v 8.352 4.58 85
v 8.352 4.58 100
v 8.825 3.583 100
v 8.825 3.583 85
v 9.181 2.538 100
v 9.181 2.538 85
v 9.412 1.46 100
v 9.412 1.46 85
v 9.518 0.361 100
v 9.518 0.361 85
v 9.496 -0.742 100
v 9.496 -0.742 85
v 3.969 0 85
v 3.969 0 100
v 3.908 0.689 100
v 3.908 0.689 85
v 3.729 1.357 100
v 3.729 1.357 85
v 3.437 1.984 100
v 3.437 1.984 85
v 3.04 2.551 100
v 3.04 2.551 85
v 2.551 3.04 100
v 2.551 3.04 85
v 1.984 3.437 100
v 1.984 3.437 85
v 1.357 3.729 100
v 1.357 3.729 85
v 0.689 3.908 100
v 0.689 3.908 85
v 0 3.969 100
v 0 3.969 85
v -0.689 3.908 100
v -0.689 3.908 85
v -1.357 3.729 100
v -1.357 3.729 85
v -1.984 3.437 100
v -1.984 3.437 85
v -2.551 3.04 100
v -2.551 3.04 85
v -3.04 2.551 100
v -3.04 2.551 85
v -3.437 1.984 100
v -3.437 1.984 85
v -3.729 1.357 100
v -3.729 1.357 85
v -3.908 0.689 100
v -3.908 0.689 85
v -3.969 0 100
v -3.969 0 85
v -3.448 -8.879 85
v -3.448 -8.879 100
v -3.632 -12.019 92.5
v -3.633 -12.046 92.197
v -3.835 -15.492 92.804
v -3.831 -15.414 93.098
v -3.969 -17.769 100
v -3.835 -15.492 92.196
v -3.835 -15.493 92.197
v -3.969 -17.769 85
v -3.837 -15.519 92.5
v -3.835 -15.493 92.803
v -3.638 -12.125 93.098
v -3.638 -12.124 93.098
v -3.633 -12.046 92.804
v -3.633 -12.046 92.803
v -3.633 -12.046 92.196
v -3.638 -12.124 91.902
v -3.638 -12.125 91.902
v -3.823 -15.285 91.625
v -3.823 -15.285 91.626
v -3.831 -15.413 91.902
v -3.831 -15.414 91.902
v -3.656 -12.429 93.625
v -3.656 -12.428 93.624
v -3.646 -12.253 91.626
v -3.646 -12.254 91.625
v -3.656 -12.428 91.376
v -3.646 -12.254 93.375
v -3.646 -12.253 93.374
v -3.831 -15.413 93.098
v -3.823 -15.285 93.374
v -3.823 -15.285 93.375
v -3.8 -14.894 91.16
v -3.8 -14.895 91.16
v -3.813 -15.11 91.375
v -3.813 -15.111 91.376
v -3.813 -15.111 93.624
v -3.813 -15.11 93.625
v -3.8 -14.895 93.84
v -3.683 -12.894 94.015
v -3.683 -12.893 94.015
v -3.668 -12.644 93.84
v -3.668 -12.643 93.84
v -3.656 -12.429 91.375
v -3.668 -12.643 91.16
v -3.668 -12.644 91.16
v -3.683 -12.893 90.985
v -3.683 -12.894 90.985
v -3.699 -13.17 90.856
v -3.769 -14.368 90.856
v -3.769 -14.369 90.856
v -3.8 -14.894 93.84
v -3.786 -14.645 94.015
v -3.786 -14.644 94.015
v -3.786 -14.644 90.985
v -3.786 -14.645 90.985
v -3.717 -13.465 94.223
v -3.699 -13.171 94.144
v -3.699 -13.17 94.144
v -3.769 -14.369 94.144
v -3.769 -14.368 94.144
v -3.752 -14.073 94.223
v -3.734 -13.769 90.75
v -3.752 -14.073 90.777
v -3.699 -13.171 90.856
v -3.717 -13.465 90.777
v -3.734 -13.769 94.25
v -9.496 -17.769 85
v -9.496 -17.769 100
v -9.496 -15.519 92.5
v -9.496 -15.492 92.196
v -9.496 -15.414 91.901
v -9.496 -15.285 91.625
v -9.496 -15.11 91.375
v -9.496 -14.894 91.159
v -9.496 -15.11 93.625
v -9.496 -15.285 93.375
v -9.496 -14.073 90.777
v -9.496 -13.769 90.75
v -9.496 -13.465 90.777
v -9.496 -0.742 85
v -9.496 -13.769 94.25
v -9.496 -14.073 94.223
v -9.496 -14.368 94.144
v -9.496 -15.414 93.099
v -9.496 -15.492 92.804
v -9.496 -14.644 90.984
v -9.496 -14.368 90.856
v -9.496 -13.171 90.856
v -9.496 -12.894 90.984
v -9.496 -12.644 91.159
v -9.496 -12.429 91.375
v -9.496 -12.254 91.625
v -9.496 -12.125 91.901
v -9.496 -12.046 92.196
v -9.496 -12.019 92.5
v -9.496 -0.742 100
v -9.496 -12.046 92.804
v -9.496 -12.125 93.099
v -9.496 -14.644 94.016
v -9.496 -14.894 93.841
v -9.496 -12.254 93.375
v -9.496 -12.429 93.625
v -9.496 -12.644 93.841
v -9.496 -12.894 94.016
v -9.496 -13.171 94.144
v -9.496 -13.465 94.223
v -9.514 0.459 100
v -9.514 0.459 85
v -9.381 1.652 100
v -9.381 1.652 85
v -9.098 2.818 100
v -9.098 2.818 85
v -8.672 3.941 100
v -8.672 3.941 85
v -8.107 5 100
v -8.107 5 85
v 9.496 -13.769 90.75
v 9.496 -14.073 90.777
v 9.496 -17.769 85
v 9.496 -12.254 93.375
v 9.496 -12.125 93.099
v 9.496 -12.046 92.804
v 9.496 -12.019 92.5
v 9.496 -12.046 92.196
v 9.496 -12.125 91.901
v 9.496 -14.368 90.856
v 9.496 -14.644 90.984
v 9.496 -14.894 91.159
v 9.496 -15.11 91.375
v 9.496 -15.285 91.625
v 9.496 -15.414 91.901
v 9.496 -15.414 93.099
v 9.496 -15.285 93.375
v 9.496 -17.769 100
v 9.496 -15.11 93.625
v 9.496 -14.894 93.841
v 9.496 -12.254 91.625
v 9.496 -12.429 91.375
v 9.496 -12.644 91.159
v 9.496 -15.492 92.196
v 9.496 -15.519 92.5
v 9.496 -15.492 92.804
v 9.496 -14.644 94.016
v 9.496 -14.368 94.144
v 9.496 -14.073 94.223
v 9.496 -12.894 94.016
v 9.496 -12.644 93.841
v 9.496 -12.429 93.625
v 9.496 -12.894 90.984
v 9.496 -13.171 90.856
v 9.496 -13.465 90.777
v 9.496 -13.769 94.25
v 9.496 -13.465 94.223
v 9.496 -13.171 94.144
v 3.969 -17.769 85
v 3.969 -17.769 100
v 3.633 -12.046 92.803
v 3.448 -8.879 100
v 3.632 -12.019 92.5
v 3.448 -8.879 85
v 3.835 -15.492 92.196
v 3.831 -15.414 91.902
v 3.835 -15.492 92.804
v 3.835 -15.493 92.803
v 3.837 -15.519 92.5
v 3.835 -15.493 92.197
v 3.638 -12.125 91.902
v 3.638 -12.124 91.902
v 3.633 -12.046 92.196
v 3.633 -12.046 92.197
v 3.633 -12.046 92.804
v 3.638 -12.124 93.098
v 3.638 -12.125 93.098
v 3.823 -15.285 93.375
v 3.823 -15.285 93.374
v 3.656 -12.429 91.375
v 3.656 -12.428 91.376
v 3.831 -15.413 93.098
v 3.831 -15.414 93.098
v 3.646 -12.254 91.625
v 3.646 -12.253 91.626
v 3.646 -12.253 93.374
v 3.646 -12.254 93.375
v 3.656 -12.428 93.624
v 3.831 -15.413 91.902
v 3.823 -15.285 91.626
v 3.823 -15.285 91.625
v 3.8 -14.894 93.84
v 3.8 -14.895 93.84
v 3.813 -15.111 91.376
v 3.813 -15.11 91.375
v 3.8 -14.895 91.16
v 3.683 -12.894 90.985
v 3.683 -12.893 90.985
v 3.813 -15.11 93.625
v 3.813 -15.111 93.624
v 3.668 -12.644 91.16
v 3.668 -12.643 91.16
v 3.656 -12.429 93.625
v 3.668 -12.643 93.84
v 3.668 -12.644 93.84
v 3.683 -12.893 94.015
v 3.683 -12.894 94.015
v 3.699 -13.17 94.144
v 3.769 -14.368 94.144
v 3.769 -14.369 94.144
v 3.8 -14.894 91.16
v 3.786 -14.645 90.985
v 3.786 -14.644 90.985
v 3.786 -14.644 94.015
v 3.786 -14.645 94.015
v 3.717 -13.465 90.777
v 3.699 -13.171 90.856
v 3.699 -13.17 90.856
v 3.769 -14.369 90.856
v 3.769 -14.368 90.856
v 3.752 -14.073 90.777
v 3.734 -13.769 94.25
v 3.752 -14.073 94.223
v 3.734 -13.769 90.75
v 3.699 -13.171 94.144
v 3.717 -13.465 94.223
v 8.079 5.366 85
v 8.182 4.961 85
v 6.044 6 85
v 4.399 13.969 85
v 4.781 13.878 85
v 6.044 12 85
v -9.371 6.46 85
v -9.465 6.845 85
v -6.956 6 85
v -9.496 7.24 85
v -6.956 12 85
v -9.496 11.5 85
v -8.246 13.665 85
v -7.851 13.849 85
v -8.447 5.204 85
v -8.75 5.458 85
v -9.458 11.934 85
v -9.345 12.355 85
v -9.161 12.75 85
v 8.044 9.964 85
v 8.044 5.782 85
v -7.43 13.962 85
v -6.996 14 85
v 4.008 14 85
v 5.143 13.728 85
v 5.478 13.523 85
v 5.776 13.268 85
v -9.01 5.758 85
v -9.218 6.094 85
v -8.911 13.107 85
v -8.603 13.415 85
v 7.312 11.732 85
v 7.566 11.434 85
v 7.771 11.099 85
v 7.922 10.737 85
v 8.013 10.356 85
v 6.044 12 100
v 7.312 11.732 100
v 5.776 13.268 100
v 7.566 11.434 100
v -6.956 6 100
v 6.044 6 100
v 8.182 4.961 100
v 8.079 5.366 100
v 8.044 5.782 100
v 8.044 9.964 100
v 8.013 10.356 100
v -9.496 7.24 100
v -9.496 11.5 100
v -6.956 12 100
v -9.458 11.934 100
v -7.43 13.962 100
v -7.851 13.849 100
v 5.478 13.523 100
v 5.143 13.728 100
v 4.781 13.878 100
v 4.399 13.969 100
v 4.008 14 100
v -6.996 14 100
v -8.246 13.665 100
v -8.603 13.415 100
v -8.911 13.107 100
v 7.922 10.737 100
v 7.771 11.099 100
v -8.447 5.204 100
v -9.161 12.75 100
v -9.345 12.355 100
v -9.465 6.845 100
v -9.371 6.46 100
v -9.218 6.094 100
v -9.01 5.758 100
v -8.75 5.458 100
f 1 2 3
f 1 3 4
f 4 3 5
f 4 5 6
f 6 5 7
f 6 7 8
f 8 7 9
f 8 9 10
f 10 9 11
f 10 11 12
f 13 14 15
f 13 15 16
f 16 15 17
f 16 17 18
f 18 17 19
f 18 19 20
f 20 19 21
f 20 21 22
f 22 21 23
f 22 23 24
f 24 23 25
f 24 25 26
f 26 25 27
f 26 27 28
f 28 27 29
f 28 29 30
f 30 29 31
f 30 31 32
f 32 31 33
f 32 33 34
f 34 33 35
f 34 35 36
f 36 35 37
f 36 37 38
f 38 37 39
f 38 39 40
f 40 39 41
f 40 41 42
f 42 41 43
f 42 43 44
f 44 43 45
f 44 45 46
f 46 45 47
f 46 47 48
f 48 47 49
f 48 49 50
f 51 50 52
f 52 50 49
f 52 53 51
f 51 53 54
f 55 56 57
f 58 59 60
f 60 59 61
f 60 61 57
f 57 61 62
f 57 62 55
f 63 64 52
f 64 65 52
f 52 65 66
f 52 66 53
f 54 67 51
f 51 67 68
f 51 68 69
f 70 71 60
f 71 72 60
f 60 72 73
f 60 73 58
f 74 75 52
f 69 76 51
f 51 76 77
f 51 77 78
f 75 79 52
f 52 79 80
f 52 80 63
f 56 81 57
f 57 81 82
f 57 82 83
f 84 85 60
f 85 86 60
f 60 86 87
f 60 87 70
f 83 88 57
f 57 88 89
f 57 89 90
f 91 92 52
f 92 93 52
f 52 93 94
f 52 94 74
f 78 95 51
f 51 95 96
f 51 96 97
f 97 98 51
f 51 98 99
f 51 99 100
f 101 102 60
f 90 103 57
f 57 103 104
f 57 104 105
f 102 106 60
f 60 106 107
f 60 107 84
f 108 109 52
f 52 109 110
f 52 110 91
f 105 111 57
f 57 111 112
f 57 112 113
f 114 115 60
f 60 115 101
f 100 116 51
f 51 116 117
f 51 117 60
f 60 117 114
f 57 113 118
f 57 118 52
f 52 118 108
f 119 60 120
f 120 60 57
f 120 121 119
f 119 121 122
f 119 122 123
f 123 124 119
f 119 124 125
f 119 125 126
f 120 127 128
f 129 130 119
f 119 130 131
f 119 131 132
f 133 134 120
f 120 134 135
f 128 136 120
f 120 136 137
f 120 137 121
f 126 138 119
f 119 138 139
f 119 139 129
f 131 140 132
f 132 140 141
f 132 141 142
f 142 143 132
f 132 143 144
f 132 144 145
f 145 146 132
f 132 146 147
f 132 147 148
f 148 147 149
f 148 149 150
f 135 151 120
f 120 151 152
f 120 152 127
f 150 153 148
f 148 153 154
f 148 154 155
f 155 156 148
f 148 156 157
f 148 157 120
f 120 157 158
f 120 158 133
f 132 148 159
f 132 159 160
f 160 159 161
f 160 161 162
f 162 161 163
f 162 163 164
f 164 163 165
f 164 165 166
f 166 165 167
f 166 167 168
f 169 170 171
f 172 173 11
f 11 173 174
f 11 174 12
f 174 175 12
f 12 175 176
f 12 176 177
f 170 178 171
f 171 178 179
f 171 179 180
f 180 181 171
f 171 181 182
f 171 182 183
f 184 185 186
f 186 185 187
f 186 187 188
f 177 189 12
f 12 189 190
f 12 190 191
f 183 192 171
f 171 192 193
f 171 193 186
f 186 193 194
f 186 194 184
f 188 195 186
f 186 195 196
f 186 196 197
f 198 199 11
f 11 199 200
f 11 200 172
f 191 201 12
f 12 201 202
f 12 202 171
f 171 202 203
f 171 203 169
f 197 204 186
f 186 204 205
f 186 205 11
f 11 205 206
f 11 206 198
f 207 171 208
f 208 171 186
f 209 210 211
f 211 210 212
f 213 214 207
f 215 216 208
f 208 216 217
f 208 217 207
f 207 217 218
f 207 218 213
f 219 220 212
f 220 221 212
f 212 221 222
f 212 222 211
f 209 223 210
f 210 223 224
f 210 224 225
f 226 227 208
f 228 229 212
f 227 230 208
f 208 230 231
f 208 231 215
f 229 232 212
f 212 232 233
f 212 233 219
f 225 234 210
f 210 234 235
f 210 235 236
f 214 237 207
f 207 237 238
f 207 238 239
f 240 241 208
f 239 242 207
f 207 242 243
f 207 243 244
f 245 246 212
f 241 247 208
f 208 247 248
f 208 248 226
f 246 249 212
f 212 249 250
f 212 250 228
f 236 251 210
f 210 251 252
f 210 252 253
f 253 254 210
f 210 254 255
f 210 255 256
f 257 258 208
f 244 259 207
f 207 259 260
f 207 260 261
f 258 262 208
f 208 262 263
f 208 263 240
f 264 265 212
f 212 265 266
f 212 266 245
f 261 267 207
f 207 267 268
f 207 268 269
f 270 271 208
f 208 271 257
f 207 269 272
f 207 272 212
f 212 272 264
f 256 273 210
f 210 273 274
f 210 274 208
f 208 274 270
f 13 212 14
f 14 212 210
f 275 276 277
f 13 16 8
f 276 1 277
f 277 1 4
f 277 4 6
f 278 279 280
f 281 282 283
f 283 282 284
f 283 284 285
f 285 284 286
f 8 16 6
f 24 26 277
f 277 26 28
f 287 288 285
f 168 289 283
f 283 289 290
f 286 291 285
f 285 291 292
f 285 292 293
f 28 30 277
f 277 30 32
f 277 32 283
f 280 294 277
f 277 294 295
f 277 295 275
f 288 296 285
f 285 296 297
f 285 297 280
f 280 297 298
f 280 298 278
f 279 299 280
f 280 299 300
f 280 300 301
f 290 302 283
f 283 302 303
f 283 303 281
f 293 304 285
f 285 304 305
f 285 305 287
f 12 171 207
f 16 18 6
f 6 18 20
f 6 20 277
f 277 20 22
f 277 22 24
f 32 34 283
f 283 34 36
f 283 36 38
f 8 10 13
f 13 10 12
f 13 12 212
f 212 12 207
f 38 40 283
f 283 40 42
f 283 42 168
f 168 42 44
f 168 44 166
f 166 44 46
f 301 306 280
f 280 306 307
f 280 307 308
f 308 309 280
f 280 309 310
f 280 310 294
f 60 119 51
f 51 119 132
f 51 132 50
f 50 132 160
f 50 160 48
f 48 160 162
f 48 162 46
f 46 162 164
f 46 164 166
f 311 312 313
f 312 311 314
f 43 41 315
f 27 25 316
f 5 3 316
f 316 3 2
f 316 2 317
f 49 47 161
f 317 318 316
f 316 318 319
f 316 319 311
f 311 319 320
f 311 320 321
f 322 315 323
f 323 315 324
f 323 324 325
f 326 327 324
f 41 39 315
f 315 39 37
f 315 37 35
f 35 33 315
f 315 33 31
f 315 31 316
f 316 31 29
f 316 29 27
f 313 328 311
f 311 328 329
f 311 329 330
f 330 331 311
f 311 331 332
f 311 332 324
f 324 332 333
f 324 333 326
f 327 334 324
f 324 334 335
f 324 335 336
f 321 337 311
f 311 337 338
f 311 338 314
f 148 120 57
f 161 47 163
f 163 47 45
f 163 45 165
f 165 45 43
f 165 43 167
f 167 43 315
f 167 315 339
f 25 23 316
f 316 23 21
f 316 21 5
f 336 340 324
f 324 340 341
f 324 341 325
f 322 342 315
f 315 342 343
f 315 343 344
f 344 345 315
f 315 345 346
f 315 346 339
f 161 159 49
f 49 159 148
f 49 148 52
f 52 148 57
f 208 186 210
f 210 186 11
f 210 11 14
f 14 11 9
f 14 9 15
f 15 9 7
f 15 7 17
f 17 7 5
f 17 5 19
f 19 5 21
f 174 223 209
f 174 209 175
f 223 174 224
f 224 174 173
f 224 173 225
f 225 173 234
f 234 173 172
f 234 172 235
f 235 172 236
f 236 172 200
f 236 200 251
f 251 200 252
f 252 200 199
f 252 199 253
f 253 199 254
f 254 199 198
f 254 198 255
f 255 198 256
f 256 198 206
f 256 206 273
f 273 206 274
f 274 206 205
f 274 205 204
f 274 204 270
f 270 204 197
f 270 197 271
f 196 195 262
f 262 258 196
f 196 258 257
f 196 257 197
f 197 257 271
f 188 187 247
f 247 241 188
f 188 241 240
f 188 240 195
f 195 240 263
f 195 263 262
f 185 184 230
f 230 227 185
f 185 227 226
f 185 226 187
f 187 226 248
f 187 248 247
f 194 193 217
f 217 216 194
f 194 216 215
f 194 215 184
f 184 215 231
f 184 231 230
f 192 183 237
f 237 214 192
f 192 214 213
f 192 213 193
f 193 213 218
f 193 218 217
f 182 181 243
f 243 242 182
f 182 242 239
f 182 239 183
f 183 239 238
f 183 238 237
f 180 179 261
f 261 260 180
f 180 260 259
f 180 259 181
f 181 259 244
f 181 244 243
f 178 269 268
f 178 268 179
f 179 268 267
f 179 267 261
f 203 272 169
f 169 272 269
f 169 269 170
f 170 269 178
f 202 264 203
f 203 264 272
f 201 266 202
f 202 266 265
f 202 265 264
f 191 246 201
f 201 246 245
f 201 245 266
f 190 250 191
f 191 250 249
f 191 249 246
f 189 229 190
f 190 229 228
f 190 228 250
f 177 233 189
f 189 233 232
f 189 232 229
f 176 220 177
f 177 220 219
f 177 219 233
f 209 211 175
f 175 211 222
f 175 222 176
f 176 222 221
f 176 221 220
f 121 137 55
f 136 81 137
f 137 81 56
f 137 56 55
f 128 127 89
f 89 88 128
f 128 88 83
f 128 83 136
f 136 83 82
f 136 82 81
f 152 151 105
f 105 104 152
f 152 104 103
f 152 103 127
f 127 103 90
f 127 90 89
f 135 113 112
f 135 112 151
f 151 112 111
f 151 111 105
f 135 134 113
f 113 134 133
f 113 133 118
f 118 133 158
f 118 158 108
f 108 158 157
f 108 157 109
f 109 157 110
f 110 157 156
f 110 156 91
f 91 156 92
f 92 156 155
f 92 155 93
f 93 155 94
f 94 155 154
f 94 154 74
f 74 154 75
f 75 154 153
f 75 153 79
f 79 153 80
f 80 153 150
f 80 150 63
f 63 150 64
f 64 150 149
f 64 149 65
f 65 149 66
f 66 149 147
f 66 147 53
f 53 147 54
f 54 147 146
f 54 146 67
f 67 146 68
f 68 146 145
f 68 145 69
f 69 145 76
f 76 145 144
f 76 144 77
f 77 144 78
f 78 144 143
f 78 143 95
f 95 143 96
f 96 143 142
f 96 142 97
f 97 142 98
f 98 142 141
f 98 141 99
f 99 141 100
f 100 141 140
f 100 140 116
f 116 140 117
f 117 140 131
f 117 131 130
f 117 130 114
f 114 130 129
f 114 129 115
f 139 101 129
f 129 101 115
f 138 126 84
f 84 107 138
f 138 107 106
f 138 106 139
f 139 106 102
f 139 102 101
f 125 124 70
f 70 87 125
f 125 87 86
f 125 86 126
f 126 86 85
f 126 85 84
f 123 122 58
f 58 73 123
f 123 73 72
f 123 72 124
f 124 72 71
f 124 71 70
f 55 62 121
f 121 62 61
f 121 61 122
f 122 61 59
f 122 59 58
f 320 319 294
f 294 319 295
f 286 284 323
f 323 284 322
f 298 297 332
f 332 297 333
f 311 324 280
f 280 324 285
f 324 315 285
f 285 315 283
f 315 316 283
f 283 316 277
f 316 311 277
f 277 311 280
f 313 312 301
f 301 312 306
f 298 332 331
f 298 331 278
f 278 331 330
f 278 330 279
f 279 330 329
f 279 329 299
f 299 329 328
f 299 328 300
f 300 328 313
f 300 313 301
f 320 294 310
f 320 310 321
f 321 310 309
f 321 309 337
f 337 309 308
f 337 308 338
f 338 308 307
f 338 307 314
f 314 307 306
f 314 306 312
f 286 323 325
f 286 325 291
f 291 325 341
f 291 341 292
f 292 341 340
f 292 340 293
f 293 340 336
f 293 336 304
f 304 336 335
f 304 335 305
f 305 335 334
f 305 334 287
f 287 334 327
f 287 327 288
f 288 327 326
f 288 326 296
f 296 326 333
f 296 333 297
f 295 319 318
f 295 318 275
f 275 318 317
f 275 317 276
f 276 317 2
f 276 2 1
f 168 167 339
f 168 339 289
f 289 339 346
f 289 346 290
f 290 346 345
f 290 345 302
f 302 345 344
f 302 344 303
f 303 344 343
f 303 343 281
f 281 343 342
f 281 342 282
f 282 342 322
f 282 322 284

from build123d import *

# Parameters (mm, degrees)
CLIP_DEPTH          = 15
SKETCH7_R           = 1.75
CUT_EXTRUDE4_DEPTH  = 19.812
SKETCH8_W           = 17.539999972
SKETCH8_H           = 9.000000002
BOSS_EXTRUDE1_DEPTH = 15
SKETCH10_W          = 13
SKETCH10_H          = 6
CUT_EXTRUDE5_DEPTH  = 15
CHAMFER2_SIZE       = 3
FILLET1_R           = 2.5


with BuildPart() as part:
    # Sketch1 → Clip (new body)
    with BuildSketch(Plane(origin=(0, -100, 100), x_dir=(1, 0, 0), z_dir=(0, 0, -1))):
        with BuildLine():
            Line((-3.447825682, -91.120916541), (-3.96875, -100))
            ThreePointArc((-3.96875, -100), (0, -103.96875), (3.96875, -100))
            Line((3.96875, -100), (3.447825682, -91.120916541))
            Line((3.447825682, -91.120916541), (3.96875, -82.230916541))
            Line((3.96875, -82.230916541), (9.496072463, -82.230916541))
            Line((9.496072463, -82.230916541), (9.496072463, -99.258223228))
            ThreePointArc((9.496072463, -99.258223228), (0, -109.525), (-9.496072463, -99.258223228))
            Line((-9.496072463, -99.258223228), (-9.496072463, -82.230916541))
            Line((-9.496072463, -82.230916541), (-3.96875, -82.230916541))
            Line((-3.96875, -82.230916541), (-3.447825682, -91.120916541))
        make_face()
    extrude(amount=CLIP_DEPTH)

    # Sketch7 → Cut-Extrude4 (cut)
    with BuildSketch(Plane.ZY.offset(9.496072463)):
        with Locations(Location((92.5, -13.769083459, 0), (0, 0, 270))):
            Circle(SKETCH7_R)
    extrude(amount=-CUT_EXTRUDE4_DEPTH, mode=Mode.SUBTRACT)

    # Sketch8 → Boss-Extrude1 (add)
    with BuildSketch(Plane.XY.offset(100)):
        with Locations((-0.726072477, 9.499999907)):
            Rectangle(SKETCH8_W, SKETCH8_H)
    extrude(amount=-BOSS_EXTRUDE1_DEPTH)

    # Sketch10 → Cut-Extrude5 (cut)
    with BuildSketch(Plane(origin=(0, 0, 85), x_dir=(-1, 0, 0), z_dir=(0, 0, -1))):
        with Locations((0.456072491, 8.999999876)):
            Rectangle(SKETCH10_W, SKETCH10_H)
    extrude(amount=-CUT_EXTRUDE5_DEPTH, mode=Mode.SUBTRACT)

    # Chamfer2
    chamfer2_edges = [part.edges().sort_by_distance(p)[0] for p in [
        (8.043927509, 13.999999908, 92.5),
    ]]
    chamfer(chamfer2_edges, length=CHAMFER2_SIZE)

    # Fillet1
    # the kernel refuses this fillet: 2.5 mm, written as the material it adds along each edge
    with BuildSketch(Plane(origin=(8.043927509, 5.101064127, 85), x_dir=(0, 1, 0), z_dir=(0, 0, 1))) as fillet1_piece_1:
        with BuildLine():
            CenterArc((0.68047699, -2.5), FILLET1_R, 90, 28.737235663)
            ThreePointArc((-0.521506611, -0.307915279), (-0.258305429, -0.158103532), (0, 0))
            Line((0, 0), (0.68047699, 0))
        make_face()
    extrude(amount=15)
    # the kernel refuses this fillet: 2.5 mm, written as the material it takes off along each edge
    with BuildSketch(Plane(origin=(-9.496072463, 13.999999908, 106.25), x_dir=(1, 0, 0), z_dir=(0, 0, -1))) as fillet1_2_piece_1:
        with BuildLine():
            CenterArc((FILLET1_R, FILLET1_R), FILLET1_R, 180, 90)
            Line((0, FILLET1_R), (0, 0))
            Line((0, 0), (FILLET1_R, 0))
        make_face()
    extrude(amount=27.5, mode=Mode.SUBTRACT)
    with BuildSketch(Plane(origin=(-9.496072463, 4.999999906, 105.598851266), x_dir=(0, 1, 0), z_dir=(0, 0, -1))) as fillet1_2_piece_2:
        with BuildLine():
            CenterArc((2.239540506, 2.5), FILLET1_R, 206.386538366, 63.613461634)
            Line((0, 1.388938201), (0, 0))
            Line((0, 0), (2.239540506, 0))
        make_face()
    extrude(amount=26.197702531, mode=Mode.SUBTRACT)
    with BuildSketch(Plane(origin=(5.043927509, 13.999999908, 102.588834765), x_dir=(-1, 0, 0), z_dir=(0, 0, -1)), Plane(origin=(8.043927509, 10.999999908, 102.588834765), x_dir=(-0.7071067811865475, 0.7071067811865475, 0), z_dir=(0, 0, -1))) as fillet1_2_piece_3:
        with BuildLine():
            CenterArc((FILLET1_R * 0.414213562373, -FILLET1_R), FILLET1_R, 90, 45)
            Line((-FILLET1_R * 0.292893218813, -FILLET1_R * 0.292893218813), (0, 0))
            Line((0, 0), (FILLET1_R * 0.414213562373, 0))
        make_face()
    extrude(amount=20.17766953, mode=Mode.SUBTRACT)


solid = part.part
